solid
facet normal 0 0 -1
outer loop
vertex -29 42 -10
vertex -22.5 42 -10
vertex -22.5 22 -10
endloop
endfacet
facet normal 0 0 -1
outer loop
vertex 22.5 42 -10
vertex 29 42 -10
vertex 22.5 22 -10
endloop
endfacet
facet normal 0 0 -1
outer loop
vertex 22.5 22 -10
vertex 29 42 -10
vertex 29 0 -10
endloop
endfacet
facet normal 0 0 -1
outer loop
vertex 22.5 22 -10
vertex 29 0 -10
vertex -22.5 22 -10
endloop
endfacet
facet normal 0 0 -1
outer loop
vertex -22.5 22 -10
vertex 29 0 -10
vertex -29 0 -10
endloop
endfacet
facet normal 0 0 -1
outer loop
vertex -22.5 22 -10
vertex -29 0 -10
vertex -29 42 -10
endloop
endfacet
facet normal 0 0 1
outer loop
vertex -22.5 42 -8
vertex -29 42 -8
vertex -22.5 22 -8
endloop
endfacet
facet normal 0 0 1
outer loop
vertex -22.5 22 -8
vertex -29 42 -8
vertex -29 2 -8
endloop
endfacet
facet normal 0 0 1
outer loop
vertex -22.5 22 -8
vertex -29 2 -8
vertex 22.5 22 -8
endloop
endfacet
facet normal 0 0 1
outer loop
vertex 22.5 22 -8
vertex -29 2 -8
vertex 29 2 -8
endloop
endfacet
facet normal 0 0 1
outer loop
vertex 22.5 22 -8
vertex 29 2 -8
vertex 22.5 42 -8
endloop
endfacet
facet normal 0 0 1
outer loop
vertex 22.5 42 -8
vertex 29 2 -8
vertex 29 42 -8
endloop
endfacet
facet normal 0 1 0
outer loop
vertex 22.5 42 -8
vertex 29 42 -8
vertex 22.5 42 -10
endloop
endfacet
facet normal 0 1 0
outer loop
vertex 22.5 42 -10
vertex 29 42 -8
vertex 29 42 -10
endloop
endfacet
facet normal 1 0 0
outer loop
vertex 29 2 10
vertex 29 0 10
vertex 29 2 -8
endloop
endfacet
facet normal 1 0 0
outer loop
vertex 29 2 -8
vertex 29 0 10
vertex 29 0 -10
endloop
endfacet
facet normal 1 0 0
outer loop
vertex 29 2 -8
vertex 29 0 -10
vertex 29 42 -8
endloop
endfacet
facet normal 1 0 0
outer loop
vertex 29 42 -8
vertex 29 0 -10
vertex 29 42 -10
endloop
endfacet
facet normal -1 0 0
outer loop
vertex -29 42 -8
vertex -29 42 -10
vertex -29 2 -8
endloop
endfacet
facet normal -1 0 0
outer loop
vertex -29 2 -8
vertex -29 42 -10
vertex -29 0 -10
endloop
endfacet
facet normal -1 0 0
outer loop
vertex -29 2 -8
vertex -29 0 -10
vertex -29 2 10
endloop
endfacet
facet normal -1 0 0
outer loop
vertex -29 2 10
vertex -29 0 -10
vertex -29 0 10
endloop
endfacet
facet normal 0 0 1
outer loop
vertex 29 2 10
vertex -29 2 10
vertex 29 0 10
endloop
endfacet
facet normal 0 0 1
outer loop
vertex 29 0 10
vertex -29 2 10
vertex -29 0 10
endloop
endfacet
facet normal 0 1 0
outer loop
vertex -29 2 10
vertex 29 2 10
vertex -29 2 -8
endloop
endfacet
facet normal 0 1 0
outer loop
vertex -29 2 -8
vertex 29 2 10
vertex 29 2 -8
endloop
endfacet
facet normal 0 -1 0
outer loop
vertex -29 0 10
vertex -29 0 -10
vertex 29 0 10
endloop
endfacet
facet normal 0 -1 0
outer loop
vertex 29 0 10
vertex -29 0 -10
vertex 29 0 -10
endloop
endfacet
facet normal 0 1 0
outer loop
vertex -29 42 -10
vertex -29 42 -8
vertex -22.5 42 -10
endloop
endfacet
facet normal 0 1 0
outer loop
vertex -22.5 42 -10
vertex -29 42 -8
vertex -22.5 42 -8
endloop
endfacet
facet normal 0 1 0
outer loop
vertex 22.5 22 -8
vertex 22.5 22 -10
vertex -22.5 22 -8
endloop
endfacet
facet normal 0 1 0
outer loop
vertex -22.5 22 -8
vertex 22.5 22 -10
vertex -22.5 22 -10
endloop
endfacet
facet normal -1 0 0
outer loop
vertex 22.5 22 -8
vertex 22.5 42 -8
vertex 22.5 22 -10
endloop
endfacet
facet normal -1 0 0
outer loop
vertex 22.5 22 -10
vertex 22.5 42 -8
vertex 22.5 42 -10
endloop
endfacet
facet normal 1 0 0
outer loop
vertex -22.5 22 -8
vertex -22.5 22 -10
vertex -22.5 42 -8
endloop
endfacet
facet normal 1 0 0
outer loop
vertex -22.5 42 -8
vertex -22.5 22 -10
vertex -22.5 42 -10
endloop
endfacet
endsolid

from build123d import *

# Parameters (mm, degrees)
SKETCH1_W           = 58
SKETCH1_H           = 20
BOSS_EXTRUDE1_DEPTH = 2
SKETCH2_W           = 58
SKETCH2_H           = 2
BOSS_EXTRUDE2_DEPTH = 40
SKETCH3_W           = 45
SKETCH3_H           = 20
CUT_EXTRUDE1_DEPTH  = 60


with BuildPart() as part:
    # Sketch1 → Boss-Extrude1 (new body)
    with BuildSketch(Plane(origin=(0, 0, 0), x_dir=(1, 0, 0), z_dir=(0, 1, 0))):
        Rectangle(SKETCH1_W, SKETCH1_H)
    extrude(amount=BOSS_EXTRUDE1_DEPTH)

    # Sketch2 → Boss-Extrude2 (add)
    with BuildSketch(Plane(origin=(0, 2, 0), x_dir=(1, 0, 0), z_dir=(0, 1, 0))):
        with Locations((0, 9)):
            Rectangle(SKETCH2_W, SKETCH2_H)
    extrude(amount=BOSS_EXTRUDE2_DEPTH)

    # Sketch3 → Cut-Extrude1 (cut)
    with BuildSketch(Plane.XY.offset(-8)):
        with Locations((0, 32)):
            Rectangle(SKETCH3_W, SKETCH3_H)
    extrude(amount=-CUT_EXTRUDE1_DEPTH, mode=Mode.SUBTRACT)


solid = part.part
